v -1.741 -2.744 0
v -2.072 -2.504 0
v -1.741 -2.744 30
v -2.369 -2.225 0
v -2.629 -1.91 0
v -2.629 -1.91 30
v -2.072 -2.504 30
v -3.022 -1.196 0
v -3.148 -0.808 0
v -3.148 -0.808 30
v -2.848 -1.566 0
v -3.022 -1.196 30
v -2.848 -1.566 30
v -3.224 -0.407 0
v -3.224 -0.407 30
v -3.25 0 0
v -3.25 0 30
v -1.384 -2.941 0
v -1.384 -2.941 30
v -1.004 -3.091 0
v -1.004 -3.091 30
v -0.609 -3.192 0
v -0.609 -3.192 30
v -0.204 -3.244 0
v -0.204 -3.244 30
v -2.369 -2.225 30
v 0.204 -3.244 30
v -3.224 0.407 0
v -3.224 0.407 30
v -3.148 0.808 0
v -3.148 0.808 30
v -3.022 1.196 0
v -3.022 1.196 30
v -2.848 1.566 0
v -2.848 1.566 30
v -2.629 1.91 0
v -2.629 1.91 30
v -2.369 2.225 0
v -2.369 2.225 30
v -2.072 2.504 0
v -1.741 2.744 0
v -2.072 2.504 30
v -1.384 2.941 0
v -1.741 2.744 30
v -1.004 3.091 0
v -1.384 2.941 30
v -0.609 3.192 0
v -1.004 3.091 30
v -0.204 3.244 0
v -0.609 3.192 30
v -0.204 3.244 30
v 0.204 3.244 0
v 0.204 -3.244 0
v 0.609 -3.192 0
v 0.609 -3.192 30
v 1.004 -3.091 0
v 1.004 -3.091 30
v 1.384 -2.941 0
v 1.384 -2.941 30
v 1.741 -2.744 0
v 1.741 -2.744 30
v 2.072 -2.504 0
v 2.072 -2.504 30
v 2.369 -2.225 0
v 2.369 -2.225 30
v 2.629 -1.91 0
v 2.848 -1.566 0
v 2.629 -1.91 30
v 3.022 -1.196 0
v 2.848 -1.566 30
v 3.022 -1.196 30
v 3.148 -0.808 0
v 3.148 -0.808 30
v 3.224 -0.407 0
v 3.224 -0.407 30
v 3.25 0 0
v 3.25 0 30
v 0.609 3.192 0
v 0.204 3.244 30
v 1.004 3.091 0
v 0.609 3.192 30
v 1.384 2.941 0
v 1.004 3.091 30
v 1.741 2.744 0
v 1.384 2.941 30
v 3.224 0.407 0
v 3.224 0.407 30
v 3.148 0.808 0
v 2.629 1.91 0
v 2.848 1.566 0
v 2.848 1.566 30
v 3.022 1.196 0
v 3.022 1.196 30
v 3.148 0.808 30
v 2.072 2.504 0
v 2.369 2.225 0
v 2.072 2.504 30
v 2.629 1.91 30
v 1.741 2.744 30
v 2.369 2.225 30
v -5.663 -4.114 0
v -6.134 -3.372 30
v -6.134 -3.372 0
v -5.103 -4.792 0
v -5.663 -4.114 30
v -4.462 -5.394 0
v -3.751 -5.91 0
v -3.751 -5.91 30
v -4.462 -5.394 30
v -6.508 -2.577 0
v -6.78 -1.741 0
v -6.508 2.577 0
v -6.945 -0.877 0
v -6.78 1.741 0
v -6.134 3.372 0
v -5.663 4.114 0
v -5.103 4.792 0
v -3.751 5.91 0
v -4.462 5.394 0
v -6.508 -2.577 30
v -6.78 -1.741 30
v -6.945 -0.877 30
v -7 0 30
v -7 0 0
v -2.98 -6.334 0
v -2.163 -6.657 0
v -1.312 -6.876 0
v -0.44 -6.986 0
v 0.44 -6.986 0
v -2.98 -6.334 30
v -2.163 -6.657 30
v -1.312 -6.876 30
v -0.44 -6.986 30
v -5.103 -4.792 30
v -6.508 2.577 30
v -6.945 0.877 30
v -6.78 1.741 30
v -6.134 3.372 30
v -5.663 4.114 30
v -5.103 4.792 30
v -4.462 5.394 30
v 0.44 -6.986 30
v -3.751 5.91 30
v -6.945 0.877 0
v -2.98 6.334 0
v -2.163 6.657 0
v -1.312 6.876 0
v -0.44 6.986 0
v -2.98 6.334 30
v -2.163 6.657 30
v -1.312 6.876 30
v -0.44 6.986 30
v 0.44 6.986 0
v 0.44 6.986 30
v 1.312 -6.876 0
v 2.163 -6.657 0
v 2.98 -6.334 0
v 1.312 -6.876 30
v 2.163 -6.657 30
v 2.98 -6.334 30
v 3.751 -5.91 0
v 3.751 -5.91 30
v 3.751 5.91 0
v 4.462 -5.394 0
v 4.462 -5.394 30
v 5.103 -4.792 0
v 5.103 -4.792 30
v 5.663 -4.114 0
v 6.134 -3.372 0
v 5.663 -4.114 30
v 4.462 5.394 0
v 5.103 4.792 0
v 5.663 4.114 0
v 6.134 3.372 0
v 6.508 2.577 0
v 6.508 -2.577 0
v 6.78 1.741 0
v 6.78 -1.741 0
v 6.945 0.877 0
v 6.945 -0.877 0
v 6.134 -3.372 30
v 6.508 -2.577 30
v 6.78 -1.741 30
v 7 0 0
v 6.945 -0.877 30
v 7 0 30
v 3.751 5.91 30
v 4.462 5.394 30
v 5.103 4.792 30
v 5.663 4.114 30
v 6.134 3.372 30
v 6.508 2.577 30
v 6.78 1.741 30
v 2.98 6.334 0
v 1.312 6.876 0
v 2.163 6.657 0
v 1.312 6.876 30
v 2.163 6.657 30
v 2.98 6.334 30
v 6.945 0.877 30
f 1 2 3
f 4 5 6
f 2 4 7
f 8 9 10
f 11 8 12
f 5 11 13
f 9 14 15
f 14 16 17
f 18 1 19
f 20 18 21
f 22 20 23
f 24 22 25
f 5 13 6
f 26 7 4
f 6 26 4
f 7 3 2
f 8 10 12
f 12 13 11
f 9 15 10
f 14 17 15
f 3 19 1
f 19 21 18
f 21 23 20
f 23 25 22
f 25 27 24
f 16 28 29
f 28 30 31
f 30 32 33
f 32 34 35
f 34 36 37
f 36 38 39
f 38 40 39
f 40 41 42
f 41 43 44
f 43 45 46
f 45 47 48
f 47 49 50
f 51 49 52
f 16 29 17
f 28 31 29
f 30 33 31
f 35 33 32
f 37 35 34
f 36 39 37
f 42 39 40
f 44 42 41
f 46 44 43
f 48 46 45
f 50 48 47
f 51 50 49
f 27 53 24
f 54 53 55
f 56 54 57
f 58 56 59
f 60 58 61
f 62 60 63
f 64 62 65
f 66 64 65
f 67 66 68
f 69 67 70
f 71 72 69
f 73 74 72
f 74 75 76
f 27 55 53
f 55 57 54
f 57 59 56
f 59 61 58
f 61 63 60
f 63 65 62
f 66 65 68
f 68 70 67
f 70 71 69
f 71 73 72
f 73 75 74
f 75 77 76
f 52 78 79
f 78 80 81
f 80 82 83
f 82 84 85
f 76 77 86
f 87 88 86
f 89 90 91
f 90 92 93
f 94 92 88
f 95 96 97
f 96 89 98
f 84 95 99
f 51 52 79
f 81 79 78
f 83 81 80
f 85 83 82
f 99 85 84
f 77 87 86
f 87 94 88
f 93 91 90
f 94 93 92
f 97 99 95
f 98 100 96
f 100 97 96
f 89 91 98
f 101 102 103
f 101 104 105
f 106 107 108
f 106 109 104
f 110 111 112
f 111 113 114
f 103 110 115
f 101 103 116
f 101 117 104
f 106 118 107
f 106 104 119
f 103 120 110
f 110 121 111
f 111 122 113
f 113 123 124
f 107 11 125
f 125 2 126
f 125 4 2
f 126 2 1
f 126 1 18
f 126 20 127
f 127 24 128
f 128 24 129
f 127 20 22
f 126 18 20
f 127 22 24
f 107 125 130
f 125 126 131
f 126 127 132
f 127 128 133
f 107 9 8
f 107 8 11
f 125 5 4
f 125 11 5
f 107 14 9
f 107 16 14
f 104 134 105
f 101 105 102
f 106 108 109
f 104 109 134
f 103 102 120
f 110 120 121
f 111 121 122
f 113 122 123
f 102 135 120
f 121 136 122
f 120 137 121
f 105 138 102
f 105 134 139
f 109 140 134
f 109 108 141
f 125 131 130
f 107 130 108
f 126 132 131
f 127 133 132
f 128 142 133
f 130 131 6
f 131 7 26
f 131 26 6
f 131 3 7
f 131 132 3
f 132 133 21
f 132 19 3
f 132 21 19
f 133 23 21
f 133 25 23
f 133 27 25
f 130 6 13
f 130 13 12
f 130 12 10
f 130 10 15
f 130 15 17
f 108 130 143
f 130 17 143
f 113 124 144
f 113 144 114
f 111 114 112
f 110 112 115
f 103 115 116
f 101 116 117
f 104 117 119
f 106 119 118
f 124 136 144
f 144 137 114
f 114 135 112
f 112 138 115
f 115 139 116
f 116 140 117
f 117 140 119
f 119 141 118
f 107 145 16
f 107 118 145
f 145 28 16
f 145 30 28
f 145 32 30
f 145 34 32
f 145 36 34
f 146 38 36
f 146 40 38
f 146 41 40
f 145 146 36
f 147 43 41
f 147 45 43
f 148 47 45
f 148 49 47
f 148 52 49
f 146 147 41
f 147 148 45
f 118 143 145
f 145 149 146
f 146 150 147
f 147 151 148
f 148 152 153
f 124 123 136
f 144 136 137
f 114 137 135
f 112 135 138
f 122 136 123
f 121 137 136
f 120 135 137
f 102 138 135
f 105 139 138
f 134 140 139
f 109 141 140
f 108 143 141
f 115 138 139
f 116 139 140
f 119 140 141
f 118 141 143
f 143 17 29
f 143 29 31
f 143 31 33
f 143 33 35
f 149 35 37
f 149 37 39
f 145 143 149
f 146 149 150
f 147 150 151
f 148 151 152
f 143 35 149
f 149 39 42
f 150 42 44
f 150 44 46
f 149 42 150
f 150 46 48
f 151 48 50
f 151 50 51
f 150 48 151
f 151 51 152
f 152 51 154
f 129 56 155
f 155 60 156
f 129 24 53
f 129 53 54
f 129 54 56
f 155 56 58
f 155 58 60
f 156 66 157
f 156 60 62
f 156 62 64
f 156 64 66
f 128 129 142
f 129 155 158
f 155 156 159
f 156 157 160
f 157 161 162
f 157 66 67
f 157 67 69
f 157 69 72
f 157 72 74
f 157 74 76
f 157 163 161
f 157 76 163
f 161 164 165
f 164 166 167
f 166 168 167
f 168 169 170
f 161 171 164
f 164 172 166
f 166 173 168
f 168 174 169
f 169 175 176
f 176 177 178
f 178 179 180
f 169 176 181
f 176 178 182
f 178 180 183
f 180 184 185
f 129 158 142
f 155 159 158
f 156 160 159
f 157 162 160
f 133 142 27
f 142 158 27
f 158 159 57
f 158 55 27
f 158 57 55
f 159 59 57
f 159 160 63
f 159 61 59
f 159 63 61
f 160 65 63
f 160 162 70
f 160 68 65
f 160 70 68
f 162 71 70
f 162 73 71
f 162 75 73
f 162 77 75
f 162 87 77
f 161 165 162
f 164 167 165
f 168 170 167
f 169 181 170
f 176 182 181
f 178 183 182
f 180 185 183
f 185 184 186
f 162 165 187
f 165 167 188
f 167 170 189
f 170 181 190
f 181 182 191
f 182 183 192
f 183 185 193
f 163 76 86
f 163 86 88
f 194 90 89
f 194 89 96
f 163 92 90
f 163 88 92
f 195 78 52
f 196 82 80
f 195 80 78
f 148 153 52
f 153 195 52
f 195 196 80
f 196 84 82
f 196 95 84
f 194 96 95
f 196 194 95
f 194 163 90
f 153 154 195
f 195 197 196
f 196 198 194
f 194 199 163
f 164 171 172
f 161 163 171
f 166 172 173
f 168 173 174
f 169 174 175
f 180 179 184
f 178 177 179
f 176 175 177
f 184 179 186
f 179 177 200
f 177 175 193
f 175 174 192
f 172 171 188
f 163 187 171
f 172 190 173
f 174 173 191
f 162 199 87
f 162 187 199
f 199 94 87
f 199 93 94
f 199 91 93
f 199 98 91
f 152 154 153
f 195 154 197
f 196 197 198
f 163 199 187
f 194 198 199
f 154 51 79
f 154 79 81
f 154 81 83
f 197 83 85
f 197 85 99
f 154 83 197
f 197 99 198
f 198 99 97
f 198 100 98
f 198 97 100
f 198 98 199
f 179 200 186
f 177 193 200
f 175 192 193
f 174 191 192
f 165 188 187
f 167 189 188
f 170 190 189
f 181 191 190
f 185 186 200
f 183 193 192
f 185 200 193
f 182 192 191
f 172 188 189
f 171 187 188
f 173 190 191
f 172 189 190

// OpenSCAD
$fn = 50;

difference() {
	union() {
		cylinder(h = 30, r = 7.0);
	}
	union() {
		translate(v = [0, 0, -100]) {
			cylinder(h = 200, r = 3.25);
		}
		translate(v = [0, 0, -100]) {
			cylinder(h = 200, r = 1.8);
		}
	}
}
